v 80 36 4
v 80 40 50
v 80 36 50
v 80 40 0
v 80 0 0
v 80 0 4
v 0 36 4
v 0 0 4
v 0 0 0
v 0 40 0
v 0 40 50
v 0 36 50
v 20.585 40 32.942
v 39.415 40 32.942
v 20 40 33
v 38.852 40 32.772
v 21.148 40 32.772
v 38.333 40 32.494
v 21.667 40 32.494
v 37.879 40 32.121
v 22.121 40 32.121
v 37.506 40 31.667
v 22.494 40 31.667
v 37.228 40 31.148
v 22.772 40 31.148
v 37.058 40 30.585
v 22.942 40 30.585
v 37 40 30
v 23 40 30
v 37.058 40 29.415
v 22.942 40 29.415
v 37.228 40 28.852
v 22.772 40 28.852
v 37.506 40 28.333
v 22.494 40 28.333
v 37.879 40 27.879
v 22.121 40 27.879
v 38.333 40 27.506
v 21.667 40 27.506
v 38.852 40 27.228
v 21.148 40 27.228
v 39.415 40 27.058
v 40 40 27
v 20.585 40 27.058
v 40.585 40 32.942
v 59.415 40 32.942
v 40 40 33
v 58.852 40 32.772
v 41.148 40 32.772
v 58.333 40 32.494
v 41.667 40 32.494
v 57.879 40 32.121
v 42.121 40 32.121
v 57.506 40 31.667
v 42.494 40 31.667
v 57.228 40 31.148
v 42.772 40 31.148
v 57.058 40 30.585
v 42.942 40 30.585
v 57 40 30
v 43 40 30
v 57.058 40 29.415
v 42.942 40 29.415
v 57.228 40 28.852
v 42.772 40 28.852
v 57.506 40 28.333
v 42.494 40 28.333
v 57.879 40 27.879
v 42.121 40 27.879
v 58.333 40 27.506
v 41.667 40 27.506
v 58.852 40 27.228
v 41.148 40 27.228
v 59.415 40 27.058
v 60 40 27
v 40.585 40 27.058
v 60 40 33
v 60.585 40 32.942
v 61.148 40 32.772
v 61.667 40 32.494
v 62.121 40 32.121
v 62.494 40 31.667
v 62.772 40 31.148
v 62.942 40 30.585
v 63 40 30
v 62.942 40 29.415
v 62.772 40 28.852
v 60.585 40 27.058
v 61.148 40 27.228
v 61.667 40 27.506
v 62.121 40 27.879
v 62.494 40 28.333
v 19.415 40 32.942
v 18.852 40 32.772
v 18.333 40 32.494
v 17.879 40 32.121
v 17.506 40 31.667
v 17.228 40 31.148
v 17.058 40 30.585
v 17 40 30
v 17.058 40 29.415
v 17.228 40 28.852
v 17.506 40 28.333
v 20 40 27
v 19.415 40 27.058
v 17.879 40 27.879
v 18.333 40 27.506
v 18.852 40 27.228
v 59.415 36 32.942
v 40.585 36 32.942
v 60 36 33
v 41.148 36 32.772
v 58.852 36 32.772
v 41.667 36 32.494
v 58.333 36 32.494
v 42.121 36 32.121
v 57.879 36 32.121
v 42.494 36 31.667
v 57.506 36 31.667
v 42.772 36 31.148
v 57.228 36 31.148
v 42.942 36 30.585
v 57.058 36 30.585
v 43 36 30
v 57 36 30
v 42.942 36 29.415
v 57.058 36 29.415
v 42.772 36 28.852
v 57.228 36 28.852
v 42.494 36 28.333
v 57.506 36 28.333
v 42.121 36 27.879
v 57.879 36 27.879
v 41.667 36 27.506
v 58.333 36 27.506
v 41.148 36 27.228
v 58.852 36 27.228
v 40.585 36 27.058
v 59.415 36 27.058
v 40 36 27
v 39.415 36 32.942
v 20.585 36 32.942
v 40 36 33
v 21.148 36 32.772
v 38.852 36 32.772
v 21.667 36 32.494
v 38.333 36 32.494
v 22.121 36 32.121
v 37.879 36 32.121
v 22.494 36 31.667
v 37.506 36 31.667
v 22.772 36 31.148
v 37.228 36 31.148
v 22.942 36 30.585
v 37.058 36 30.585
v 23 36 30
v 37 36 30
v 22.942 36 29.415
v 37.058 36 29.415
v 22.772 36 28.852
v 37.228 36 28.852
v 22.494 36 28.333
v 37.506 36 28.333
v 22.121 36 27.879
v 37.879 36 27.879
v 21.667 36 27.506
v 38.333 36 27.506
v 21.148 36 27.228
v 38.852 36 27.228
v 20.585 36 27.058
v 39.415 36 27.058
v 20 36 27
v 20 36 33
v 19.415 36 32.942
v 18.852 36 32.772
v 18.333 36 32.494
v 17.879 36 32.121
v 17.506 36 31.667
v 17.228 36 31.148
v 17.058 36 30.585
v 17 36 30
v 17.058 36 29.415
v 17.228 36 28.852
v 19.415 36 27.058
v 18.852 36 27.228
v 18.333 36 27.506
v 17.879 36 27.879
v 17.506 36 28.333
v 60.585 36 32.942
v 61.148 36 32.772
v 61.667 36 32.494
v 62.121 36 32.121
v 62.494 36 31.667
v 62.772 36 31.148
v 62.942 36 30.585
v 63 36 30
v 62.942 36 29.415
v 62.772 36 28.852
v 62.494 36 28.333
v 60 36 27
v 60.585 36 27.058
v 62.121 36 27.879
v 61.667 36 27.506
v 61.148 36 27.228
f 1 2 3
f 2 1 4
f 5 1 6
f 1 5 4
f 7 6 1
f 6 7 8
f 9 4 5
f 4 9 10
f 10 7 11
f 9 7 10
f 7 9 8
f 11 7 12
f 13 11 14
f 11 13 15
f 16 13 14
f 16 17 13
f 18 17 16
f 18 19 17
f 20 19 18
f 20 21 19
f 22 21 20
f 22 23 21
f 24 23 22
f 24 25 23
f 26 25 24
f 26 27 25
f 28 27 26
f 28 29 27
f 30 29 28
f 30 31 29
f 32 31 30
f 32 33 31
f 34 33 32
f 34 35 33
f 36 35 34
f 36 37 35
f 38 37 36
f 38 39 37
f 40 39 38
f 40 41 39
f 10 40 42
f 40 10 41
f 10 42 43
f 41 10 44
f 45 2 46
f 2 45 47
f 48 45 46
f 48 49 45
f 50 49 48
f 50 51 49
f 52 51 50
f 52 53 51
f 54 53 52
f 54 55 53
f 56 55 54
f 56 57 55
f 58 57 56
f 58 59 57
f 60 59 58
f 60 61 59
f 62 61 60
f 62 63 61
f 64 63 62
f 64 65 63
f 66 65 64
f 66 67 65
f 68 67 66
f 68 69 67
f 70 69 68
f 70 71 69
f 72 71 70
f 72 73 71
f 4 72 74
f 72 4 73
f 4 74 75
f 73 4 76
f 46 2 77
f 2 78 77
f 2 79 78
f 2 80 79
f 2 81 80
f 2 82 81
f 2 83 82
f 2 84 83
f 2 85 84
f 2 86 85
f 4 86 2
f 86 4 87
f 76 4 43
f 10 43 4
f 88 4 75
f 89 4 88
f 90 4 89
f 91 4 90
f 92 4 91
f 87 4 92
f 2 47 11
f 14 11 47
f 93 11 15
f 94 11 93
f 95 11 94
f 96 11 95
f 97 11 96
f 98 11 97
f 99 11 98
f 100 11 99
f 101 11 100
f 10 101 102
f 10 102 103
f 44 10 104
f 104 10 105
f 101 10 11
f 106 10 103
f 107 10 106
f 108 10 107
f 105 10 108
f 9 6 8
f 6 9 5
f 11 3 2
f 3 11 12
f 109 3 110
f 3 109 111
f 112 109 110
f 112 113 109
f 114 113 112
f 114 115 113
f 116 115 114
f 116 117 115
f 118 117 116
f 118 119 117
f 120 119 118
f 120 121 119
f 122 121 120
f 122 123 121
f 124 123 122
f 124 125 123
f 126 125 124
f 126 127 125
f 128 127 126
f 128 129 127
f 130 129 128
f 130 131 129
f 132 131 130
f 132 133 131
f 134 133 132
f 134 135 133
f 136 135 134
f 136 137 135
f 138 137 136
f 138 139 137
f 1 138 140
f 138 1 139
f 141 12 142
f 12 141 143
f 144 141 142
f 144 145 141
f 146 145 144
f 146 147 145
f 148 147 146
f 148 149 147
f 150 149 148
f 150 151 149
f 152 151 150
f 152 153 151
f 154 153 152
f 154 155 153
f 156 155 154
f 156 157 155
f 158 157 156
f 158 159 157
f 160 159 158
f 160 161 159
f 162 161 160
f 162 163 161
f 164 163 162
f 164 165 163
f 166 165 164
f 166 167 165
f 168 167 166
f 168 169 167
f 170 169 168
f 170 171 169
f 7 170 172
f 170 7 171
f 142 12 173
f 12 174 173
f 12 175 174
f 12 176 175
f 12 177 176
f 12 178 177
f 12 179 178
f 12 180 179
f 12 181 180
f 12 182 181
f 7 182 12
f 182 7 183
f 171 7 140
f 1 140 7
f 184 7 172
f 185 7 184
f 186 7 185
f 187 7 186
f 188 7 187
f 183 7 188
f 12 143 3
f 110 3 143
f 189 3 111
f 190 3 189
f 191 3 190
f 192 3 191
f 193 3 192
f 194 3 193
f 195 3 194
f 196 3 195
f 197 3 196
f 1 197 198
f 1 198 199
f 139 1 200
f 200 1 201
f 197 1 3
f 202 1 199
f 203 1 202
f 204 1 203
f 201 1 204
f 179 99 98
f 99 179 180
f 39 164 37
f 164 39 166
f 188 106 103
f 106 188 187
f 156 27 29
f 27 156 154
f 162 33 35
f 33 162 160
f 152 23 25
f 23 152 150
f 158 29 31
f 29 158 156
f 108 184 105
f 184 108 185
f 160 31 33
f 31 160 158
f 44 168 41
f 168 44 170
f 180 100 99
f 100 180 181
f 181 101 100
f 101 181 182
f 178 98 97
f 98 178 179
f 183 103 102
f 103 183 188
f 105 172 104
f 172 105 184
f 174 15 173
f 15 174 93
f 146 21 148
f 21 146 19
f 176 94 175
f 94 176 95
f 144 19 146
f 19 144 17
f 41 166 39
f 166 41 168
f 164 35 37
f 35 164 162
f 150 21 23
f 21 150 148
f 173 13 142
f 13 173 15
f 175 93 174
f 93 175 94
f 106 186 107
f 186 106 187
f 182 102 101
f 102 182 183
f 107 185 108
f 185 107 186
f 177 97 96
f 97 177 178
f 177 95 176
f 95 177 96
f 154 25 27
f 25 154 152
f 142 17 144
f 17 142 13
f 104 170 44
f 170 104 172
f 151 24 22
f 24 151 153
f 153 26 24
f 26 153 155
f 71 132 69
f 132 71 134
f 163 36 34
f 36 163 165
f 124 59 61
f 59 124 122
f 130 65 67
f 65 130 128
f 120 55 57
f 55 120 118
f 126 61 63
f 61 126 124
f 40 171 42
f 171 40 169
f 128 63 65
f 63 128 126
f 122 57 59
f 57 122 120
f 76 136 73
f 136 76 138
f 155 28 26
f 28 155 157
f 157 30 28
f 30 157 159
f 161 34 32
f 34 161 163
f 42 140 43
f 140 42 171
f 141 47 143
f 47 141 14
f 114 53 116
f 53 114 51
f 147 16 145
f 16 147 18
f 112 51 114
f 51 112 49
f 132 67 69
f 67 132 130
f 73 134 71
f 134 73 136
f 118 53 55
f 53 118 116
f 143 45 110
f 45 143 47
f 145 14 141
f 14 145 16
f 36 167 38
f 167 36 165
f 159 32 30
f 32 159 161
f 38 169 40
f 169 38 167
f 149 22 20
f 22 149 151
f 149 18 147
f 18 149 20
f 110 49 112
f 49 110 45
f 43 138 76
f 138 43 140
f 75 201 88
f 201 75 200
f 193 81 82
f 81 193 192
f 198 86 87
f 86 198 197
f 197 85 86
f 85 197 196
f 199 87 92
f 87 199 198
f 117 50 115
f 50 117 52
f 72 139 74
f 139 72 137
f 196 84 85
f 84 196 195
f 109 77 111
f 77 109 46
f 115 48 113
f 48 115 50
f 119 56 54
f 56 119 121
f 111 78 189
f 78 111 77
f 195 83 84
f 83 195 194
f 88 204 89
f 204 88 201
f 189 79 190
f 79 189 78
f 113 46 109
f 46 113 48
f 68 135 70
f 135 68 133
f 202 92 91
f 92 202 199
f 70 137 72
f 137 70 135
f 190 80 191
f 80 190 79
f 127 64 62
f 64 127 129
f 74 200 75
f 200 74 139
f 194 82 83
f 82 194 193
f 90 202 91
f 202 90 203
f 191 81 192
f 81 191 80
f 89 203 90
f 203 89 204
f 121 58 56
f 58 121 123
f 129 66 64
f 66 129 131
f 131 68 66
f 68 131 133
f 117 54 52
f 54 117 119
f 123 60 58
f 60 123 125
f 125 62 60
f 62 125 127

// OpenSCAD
// Angle bracket: base 80x40x4 at z0..4, back wall 80x4x50 (y=36..40).
// Three d6 holes through the wall (axis Y) at x=20,40,60 z=30.
difference() {
  union() {
    cube([80,40,4]);
    translate([0,36,0]) cube([80,4,50]);
  }
  for (x=[20,40,60]) translate([x,35,30]) rotate([-90,0,0]) cylinder(d=6,h=10,$fn=32);
}
